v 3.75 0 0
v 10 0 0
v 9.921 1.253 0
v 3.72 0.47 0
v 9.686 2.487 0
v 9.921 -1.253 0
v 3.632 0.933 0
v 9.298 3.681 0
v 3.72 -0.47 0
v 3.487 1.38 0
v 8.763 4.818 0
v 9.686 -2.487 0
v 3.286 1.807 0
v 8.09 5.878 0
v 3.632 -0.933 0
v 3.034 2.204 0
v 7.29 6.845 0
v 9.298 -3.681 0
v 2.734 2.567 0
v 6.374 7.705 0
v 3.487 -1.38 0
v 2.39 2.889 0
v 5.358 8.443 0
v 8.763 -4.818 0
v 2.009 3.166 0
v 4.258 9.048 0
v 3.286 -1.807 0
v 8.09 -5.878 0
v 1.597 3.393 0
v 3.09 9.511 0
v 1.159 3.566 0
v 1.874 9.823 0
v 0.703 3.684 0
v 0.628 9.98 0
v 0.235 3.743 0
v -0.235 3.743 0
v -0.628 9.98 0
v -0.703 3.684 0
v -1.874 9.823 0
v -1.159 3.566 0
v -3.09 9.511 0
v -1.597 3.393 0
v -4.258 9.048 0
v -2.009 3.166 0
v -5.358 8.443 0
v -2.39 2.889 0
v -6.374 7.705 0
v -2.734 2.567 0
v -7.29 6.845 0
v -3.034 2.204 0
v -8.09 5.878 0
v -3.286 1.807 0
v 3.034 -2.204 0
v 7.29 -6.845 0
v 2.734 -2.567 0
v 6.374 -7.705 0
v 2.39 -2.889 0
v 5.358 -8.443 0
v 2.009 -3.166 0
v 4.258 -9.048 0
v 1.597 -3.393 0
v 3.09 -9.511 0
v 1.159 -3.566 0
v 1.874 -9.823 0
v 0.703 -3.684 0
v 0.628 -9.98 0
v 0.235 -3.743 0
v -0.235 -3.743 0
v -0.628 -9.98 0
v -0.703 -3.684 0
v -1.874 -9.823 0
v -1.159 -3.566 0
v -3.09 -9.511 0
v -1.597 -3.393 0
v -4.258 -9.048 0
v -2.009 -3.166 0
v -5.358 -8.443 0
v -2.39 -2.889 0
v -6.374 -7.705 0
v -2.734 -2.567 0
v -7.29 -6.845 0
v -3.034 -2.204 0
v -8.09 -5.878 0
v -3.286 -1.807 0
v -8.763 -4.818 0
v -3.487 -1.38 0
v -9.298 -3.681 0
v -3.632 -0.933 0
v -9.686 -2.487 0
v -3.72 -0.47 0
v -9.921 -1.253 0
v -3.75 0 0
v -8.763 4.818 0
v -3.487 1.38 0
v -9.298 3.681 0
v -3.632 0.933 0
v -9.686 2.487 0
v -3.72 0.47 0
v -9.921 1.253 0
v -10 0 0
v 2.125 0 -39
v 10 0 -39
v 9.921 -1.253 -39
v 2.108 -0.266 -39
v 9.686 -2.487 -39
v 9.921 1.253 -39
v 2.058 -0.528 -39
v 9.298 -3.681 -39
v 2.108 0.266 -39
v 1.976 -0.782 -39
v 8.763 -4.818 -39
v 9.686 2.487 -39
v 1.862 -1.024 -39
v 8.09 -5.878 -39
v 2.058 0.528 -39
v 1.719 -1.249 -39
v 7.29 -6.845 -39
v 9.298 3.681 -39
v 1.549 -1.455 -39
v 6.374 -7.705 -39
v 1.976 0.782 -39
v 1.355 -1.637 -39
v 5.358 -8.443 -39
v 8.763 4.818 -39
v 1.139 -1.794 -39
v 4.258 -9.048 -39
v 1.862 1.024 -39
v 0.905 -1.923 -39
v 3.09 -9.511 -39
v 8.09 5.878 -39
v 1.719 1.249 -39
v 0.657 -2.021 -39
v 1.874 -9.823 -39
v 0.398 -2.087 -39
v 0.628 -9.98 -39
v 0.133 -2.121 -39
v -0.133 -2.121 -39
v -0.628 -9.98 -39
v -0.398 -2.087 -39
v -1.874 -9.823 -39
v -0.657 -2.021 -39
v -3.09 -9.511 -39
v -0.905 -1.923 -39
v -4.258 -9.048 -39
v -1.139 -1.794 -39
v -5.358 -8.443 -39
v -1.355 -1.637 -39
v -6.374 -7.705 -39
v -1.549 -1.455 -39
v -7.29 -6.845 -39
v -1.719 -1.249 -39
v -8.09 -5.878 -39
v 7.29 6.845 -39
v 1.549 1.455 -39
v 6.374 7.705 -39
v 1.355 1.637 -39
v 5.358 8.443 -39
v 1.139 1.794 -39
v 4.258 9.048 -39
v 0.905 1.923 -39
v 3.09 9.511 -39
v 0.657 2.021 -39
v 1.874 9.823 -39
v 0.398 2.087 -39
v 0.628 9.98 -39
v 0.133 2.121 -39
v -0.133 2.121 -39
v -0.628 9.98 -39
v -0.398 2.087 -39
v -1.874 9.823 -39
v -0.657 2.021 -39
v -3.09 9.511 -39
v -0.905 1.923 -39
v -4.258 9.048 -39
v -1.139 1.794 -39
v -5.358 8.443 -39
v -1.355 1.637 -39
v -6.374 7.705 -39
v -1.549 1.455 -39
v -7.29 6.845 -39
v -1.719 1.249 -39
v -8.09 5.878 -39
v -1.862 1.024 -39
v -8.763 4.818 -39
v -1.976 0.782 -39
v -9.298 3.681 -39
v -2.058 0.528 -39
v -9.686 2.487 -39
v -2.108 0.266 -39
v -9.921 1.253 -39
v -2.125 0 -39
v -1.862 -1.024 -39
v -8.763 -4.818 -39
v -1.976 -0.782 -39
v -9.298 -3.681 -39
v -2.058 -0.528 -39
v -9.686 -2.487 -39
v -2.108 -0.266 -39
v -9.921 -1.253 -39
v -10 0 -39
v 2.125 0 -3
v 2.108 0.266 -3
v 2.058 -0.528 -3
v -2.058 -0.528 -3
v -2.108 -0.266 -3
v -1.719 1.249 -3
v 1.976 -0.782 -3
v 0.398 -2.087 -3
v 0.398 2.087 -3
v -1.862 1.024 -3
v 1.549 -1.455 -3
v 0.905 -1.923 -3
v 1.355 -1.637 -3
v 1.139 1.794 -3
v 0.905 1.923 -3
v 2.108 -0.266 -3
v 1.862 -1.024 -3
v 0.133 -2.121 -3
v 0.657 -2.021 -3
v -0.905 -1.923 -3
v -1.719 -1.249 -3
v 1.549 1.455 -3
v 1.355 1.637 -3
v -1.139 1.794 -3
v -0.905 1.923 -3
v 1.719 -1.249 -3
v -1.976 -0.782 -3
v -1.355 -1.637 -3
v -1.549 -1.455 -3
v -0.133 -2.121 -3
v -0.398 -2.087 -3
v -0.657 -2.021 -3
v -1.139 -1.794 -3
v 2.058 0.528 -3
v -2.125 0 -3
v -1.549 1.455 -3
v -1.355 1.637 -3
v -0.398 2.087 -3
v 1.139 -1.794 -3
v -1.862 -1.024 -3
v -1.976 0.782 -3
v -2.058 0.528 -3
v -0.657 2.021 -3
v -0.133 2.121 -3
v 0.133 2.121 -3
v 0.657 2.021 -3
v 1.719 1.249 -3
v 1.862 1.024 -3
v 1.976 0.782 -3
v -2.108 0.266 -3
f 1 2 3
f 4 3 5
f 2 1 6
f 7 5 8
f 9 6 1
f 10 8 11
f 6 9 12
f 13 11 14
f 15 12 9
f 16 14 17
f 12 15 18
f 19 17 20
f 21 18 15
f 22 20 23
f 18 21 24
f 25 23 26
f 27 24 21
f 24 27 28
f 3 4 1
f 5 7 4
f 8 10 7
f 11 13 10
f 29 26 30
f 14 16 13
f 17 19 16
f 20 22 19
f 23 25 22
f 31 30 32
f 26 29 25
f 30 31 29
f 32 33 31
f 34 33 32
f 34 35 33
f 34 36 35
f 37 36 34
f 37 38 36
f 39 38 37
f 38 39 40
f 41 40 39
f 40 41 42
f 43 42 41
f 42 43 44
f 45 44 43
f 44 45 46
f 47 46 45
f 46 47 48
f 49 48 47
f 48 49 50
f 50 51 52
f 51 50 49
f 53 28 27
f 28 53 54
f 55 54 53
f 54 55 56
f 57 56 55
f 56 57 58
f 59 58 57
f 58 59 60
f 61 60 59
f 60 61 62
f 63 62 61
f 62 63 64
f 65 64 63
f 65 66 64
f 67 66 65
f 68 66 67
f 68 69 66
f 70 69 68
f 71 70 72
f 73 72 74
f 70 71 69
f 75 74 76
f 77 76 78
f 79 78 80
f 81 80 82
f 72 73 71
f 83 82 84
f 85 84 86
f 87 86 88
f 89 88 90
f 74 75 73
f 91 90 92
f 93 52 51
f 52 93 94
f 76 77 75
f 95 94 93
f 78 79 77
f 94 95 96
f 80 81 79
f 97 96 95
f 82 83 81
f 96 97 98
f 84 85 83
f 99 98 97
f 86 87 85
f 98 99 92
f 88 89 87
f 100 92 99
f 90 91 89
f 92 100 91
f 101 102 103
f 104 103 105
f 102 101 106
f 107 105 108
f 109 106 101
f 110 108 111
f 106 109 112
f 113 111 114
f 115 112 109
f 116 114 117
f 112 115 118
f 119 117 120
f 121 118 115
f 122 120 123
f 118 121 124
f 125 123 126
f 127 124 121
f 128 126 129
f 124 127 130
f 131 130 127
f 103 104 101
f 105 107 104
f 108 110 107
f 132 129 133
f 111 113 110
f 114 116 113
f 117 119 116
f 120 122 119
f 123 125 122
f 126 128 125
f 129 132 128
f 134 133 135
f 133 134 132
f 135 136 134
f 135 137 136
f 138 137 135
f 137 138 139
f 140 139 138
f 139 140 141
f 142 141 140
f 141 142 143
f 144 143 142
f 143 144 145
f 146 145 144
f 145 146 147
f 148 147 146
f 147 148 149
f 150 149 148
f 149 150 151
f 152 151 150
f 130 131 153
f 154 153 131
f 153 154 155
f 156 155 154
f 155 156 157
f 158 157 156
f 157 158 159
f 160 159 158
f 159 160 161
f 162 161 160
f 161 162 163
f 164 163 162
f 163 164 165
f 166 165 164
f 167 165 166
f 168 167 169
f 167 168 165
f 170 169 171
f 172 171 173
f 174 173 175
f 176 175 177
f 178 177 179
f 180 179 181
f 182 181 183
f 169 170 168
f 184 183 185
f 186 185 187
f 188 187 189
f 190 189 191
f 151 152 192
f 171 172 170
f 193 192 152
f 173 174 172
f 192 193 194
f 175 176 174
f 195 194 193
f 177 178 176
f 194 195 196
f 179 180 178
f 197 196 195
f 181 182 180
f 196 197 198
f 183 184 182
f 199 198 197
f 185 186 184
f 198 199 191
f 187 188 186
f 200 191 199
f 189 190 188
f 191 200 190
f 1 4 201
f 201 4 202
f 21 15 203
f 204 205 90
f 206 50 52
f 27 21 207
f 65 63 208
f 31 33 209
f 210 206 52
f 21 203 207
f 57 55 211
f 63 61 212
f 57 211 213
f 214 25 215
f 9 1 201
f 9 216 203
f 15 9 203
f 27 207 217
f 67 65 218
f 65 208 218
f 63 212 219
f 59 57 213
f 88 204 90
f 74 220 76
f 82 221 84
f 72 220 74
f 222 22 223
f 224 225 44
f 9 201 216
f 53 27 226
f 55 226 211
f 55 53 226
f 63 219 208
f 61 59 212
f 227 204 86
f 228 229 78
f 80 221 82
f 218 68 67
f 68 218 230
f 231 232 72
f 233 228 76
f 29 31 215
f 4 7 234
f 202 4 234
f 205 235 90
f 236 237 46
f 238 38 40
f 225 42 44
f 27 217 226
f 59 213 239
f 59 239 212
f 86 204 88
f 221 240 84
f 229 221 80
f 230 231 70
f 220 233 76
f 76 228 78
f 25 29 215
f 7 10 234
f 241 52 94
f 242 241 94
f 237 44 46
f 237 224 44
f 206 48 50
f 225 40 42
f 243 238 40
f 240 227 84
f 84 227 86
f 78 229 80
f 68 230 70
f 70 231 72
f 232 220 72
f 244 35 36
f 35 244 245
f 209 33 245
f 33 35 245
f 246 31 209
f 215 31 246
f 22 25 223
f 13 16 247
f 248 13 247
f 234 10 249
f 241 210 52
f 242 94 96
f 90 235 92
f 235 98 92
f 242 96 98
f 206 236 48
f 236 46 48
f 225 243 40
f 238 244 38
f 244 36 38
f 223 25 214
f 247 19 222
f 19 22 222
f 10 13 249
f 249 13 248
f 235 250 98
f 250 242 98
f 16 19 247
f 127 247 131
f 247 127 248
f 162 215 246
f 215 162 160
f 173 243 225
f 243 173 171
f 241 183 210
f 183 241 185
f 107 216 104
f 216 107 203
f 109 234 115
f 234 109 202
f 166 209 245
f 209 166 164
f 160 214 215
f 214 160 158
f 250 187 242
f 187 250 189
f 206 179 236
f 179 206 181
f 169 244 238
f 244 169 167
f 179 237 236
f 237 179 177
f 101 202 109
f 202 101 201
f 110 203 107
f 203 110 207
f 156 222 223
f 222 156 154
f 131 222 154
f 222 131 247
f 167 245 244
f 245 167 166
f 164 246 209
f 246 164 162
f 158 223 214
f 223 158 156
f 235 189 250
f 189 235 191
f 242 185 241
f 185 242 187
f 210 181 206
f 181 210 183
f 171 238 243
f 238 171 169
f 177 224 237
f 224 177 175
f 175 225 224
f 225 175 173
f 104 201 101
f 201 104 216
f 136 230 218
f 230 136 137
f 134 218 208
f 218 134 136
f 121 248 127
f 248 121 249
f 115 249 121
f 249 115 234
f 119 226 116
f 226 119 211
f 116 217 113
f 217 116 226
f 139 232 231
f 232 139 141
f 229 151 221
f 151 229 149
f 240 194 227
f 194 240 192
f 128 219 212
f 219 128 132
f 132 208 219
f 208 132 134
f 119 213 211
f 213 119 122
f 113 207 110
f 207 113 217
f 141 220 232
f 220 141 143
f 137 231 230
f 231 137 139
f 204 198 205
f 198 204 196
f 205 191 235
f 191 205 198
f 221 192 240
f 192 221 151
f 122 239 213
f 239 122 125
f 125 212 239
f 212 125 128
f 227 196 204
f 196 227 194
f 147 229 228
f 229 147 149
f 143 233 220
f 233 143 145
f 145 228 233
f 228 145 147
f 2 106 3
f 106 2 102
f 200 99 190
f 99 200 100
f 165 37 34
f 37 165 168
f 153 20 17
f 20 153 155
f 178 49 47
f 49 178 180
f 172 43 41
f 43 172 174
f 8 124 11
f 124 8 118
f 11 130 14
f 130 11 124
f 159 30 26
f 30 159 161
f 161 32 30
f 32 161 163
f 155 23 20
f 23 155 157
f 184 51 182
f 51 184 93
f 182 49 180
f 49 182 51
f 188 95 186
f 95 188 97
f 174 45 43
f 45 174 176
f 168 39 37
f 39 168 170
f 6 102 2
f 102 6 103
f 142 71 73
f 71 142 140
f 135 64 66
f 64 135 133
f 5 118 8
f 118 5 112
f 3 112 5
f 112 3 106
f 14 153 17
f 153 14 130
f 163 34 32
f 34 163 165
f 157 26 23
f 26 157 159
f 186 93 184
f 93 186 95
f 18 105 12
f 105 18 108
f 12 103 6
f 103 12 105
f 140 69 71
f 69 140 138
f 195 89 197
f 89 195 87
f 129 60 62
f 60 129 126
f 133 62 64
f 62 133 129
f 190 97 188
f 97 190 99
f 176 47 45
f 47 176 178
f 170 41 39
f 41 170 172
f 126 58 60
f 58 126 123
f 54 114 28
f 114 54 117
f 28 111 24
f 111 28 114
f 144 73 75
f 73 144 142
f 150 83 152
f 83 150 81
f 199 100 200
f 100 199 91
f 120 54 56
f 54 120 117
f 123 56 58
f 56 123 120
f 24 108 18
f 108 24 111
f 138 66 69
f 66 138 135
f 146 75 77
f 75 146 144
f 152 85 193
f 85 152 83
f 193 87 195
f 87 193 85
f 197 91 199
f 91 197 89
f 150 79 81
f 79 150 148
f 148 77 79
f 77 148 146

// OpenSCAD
$fn = 50;


difference() {
	union() {
		translate(v = [0, 0, -39.0000000000]) {
			cylinder(h = 39, r = 10.0000000000);
		}
	}
	union() {
		translate(v = [0, 0, 0]) {
			rotate(a = [0, 0, 0]) {
				difference() {
					union() {
						#translate(v = [0, 0, -39.0000000000]) {
							cylinder(h = 39, r = 2.0000000000);
						}
						#translate(v = [0, 0, -3]) {
							cylinder(h = 3, r = 10.0000000000, r1 = 2.1250000000, r2 = 3.7500000000);
						}
						#translate(v = [0, 0, -39.0000000000]) {
							cylinder(h = 39, r = 2.1250000000);
						}
						#translate(v = [0, 0, -39.0000000000]) {
							cylinder(h = 39, r = 2.0000000000);
						}
					}
					union();
				}
			}
		}
	}
}
